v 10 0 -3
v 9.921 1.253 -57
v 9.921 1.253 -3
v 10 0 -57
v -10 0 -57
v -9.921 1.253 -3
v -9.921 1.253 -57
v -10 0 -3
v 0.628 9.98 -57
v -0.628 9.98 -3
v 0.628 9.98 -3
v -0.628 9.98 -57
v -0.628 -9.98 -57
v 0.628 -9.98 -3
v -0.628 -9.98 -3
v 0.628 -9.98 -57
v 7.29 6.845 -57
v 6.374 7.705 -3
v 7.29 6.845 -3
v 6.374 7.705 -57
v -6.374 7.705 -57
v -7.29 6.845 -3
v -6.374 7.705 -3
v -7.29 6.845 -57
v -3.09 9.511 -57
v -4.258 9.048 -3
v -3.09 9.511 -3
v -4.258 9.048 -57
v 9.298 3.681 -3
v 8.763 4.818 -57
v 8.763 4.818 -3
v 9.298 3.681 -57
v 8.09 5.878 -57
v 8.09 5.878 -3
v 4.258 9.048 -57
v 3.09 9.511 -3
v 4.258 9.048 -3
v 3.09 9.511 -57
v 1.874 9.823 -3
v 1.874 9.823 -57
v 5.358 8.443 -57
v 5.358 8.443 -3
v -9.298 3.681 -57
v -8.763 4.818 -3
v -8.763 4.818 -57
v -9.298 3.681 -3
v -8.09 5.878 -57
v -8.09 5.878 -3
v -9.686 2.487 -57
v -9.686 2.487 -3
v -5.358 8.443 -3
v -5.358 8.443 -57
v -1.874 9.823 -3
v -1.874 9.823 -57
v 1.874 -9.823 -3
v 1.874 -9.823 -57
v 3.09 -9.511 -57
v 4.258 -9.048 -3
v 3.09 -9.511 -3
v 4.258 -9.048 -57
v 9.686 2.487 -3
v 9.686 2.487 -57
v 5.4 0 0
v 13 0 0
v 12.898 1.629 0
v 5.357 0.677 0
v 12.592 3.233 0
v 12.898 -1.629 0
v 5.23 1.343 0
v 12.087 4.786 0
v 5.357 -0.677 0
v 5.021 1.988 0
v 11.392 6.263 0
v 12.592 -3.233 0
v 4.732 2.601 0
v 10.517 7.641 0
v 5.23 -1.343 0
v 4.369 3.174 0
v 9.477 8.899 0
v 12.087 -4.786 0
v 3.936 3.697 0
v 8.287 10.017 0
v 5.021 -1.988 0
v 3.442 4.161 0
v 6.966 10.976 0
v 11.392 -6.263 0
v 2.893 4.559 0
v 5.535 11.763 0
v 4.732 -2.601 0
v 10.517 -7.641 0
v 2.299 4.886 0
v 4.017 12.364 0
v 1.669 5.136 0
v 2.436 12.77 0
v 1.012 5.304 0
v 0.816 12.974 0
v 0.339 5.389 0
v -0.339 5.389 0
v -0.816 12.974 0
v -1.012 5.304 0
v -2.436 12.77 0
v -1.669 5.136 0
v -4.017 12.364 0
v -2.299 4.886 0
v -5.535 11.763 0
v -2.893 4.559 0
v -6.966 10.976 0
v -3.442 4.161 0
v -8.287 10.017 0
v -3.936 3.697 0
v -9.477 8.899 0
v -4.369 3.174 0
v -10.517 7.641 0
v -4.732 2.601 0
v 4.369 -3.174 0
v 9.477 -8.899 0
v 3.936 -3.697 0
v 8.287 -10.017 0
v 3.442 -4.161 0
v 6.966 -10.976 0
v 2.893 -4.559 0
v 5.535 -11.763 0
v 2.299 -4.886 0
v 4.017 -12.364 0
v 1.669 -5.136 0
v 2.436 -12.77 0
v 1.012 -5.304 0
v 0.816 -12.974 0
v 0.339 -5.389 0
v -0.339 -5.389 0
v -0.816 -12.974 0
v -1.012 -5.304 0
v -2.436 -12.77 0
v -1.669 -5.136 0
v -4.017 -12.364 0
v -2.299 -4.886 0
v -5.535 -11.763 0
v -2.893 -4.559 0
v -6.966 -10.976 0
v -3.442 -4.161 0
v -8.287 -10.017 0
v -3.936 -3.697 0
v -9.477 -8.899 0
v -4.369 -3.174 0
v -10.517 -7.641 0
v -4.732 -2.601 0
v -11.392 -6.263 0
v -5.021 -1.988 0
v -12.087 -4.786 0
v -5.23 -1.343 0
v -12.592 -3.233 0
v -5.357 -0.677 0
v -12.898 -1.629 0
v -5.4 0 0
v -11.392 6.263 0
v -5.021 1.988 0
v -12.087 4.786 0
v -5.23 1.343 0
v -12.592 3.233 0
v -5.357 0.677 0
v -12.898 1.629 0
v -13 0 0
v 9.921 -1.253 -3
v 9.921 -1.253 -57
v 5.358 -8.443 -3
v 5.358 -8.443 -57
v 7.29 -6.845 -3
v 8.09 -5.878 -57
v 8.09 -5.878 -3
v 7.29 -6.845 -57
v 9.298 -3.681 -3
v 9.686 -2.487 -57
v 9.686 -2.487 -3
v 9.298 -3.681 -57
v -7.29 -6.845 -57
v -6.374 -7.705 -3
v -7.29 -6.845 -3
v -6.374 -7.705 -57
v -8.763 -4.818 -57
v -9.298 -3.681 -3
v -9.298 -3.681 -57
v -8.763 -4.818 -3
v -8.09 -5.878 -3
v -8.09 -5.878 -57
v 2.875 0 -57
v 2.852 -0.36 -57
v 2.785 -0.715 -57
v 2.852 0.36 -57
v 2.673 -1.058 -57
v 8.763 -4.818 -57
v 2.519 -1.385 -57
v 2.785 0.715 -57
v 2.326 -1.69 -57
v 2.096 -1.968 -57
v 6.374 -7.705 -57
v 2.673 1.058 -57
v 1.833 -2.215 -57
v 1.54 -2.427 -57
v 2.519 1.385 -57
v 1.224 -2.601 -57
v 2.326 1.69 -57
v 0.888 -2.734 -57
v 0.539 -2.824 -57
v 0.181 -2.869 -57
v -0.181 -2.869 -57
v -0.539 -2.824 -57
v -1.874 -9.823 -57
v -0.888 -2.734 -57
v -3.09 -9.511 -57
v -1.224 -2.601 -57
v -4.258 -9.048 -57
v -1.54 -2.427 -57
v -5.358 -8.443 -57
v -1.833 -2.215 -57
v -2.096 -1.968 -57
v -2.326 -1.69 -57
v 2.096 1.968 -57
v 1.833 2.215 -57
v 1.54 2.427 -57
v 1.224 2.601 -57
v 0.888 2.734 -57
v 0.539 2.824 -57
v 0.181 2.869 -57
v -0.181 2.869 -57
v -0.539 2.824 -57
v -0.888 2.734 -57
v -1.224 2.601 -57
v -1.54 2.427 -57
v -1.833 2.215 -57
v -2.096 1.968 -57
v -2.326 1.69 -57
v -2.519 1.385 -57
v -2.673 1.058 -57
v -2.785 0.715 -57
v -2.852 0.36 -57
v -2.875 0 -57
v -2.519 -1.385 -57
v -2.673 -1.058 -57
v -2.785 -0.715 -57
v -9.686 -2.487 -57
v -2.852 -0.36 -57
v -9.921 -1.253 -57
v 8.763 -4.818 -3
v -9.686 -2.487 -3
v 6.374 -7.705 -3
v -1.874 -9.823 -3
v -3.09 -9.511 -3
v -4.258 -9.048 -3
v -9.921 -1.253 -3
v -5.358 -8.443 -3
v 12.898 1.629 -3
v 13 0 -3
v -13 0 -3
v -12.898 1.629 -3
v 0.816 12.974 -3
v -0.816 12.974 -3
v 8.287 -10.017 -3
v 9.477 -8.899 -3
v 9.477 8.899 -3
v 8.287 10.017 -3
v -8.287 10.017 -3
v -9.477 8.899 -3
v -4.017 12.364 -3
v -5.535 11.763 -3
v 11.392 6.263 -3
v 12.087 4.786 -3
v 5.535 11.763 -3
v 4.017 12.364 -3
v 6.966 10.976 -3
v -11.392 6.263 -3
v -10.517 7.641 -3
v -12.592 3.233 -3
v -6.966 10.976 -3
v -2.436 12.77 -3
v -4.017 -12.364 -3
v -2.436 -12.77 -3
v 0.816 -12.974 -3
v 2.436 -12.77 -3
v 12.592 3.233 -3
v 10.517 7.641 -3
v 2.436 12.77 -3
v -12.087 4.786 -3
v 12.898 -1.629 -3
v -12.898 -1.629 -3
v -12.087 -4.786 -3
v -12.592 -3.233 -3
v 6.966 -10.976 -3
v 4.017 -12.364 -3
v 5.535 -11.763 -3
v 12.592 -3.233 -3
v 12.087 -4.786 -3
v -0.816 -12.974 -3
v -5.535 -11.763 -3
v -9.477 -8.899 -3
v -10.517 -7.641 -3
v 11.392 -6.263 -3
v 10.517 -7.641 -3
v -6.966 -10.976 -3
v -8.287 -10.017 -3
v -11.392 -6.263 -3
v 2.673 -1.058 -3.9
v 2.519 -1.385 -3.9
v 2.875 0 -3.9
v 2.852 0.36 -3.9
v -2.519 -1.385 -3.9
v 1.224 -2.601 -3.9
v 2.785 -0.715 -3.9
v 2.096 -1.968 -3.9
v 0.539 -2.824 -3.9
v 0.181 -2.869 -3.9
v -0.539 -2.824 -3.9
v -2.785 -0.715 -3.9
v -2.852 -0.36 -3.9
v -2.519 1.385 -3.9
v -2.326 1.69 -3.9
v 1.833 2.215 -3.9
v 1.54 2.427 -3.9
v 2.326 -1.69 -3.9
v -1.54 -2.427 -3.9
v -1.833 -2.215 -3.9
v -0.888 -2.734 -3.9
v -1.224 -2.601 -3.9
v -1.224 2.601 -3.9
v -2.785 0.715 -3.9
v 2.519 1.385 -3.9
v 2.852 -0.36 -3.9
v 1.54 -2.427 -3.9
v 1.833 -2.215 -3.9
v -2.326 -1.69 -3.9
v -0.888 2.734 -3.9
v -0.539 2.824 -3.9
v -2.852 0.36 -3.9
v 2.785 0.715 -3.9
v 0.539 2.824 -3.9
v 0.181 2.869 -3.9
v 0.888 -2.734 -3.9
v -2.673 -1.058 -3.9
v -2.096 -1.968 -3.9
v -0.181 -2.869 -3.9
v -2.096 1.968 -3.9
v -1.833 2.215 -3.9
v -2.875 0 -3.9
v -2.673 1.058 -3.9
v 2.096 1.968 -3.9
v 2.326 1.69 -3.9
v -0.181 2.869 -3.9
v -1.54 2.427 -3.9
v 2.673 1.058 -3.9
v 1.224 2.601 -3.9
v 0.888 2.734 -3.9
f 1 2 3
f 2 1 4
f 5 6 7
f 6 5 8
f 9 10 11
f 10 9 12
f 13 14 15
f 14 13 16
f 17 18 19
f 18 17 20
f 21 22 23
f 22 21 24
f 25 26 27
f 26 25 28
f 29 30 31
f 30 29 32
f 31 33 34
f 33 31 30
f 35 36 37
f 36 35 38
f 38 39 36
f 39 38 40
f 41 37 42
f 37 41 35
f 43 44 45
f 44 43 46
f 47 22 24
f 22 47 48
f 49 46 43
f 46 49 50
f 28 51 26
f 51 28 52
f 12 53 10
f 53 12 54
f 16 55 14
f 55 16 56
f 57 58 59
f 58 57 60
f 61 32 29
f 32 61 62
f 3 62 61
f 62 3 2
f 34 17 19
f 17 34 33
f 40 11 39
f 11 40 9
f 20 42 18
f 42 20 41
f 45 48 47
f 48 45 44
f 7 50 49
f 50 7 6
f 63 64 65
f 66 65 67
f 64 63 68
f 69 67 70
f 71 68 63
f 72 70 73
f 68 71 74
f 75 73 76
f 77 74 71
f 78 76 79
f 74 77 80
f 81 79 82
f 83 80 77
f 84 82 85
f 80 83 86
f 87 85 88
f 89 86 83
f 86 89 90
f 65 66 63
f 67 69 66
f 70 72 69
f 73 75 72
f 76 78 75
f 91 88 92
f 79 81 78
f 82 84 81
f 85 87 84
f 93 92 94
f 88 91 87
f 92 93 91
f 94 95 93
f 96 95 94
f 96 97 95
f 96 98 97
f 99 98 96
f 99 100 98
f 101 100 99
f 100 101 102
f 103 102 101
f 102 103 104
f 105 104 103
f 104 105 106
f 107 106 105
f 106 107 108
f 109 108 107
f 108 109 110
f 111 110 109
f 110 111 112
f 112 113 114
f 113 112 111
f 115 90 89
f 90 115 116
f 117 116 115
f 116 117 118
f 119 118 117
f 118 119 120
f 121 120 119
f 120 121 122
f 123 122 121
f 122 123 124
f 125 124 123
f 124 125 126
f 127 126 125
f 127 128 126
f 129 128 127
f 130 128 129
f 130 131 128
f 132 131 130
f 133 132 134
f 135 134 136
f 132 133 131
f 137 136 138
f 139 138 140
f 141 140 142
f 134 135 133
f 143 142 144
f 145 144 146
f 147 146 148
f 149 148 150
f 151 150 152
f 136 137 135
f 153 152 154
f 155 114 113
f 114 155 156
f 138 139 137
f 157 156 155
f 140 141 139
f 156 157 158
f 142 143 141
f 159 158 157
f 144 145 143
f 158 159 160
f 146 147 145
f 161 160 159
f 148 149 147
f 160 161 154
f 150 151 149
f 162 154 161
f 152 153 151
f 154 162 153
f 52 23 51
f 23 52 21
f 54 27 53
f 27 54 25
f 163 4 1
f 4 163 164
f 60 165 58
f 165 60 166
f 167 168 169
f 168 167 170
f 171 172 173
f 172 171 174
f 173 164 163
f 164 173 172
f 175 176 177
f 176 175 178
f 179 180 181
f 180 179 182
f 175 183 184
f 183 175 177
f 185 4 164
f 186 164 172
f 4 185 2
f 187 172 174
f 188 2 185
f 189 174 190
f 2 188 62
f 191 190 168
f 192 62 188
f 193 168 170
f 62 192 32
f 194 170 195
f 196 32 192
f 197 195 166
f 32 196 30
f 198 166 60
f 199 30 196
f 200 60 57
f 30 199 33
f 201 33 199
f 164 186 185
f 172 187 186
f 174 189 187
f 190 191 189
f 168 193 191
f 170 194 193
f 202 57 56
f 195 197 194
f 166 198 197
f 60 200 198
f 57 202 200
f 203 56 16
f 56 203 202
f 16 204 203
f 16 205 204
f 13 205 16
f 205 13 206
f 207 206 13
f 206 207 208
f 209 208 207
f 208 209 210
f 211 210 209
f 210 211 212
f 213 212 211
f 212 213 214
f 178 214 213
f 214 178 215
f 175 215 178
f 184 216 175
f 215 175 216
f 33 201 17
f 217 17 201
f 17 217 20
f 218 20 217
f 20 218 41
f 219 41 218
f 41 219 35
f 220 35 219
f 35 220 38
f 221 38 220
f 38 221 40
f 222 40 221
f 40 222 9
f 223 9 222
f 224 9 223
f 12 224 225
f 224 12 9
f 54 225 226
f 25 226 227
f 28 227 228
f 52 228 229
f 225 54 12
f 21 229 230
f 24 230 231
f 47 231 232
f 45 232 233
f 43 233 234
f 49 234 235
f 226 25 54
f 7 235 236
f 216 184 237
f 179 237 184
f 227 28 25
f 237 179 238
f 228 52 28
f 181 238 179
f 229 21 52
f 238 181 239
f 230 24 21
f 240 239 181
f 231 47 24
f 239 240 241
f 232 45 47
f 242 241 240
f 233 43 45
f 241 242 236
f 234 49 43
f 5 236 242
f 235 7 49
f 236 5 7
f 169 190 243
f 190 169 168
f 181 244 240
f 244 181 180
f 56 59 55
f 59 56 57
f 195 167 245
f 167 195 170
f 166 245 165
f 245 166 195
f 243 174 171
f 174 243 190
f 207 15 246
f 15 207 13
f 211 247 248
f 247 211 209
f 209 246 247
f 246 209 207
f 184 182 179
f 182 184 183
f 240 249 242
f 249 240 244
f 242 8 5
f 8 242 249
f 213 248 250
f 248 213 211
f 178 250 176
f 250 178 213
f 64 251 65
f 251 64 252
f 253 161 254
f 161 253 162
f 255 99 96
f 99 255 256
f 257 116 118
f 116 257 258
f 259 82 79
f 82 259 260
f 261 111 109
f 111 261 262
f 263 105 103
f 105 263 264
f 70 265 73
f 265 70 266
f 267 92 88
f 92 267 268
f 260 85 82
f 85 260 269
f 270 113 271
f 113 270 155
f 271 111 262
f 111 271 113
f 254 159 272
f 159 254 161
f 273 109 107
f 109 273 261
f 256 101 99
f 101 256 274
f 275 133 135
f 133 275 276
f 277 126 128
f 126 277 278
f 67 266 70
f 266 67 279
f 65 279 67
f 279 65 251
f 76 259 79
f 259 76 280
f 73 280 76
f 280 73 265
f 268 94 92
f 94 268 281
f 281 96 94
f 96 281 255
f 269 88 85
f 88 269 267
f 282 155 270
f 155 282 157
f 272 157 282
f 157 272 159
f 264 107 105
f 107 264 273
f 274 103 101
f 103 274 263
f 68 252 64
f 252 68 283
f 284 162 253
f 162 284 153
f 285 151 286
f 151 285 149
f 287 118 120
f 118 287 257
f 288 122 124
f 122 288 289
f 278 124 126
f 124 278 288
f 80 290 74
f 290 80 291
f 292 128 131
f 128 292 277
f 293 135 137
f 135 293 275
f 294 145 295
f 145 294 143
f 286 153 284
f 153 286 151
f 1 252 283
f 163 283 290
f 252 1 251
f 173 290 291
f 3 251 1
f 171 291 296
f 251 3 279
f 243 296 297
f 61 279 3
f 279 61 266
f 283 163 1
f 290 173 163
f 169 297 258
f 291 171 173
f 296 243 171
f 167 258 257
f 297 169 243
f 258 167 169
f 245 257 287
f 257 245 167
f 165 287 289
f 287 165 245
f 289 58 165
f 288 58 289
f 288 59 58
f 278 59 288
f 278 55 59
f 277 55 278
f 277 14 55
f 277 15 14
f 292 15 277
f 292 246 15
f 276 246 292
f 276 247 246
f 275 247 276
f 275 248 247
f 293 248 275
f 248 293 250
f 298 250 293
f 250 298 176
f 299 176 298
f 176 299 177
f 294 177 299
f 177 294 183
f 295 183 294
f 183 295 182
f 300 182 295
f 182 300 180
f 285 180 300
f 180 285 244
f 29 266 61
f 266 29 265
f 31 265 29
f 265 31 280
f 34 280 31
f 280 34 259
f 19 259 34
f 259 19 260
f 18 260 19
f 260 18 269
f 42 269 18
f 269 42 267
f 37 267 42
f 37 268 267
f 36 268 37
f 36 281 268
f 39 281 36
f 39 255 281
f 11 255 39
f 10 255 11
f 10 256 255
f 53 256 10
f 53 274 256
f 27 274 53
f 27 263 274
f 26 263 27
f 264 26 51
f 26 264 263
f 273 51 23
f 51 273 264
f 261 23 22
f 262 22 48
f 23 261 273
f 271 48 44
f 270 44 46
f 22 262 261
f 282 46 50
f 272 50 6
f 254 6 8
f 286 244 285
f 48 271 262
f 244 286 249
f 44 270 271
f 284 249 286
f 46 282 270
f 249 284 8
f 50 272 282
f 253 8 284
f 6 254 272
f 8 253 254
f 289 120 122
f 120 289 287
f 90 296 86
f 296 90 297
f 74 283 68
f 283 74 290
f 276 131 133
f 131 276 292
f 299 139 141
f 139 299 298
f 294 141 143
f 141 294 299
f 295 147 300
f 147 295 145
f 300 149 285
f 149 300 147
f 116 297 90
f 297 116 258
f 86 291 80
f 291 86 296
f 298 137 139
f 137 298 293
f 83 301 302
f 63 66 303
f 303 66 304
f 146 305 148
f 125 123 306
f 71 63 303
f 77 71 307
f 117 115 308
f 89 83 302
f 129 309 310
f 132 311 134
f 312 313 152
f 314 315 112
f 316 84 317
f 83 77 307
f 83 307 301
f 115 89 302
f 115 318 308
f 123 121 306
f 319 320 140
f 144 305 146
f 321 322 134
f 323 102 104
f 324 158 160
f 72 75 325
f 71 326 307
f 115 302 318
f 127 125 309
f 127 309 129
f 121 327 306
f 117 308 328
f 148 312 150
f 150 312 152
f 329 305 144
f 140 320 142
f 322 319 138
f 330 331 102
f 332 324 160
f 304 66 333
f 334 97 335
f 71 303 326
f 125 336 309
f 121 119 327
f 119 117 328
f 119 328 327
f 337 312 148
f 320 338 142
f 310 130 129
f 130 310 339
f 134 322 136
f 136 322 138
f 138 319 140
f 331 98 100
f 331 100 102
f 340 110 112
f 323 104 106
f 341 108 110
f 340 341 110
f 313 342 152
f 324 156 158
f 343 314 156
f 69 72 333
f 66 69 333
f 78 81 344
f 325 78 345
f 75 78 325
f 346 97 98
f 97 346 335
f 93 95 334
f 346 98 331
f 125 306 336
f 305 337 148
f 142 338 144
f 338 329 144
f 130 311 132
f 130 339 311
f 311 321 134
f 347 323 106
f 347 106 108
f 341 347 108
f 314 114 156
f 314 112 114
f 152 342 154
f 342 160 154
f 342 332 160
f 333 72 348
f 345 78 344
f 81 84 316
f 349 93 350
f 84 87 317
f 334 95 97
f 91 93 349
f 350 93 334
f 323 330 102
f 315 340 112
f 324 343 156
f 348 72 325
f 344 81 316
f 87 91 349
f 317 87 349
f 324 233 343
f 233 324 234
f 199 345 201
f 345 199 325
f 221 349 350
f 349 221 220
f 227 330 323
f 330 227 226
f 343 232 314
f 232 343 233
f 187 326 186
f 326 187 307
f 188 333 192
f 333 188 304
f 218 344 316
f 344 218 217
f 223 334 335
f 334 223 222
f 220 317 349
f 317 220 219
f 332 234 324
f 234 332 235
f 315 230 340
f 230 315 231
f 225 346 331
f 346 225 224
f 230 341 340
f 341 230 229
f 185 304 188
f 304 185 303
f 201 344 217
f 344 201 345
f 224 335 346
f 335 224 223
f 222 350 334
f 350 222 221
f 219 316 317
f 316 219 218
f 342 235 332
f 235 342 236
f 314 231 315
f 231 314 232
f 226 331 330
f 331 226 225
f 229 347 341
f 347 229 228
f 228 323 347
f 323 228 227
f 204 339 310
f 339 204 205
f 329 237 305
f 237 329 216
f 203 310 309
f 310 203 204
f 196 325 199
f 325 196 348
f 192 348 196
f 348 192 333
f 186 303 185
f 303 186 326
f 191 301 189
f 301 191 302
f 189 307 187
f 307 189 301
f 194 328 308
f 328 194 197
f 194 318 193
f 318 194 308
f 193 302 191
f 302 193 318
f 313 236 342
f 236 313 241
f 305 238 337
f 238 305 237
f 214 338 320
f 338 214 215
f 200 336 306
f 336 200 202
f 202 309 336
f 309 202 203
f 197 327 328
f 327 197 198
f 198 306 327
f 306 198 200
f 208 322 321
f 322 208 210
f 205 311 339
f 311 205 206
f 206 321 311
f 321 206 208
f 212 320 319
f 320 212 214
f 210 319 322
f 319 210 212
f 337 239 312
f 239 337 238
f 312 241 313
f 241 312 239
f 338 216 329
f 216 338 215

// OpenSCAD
$fn = 50;


difference() {
	union() {
		translate(v = [0, 0, -57.0000000000]) {
			cylinder(h = 57, r = 10.0000000000);
		}
		translate(v = [0, 0, -3.0000000000]) {
			cylinder(h = 3, r = 13.0000000000);
		}
	}
	union() {
		translate(v = [0, 0, 0]) {
			rotate(a = [0, 0, 0]) {
				difference() {
					union() {
						#translate(v = [0, 0, -57.0000000000]) {
							cylinder(h = 57, r = 2.6000000000);
						}
						#translate(v = [0, 0, -3.9000000000]) {
							cylinder(h = 3.9000000000, r = 10.0000000000, r1 = 2.8750000000, r2 = 5.4000000000);
						}
						#translate(v = [0, 0, -57.0000000000]) {
							cylinder(h = 57, r = 2.8750000000);
						}
						#translate(v = [0, 0, -57.0000000000]) {
							cylinder(h = 57, r = 2.6000000000);
						}
					}
					union();
				}
			}
		}
	}
}
